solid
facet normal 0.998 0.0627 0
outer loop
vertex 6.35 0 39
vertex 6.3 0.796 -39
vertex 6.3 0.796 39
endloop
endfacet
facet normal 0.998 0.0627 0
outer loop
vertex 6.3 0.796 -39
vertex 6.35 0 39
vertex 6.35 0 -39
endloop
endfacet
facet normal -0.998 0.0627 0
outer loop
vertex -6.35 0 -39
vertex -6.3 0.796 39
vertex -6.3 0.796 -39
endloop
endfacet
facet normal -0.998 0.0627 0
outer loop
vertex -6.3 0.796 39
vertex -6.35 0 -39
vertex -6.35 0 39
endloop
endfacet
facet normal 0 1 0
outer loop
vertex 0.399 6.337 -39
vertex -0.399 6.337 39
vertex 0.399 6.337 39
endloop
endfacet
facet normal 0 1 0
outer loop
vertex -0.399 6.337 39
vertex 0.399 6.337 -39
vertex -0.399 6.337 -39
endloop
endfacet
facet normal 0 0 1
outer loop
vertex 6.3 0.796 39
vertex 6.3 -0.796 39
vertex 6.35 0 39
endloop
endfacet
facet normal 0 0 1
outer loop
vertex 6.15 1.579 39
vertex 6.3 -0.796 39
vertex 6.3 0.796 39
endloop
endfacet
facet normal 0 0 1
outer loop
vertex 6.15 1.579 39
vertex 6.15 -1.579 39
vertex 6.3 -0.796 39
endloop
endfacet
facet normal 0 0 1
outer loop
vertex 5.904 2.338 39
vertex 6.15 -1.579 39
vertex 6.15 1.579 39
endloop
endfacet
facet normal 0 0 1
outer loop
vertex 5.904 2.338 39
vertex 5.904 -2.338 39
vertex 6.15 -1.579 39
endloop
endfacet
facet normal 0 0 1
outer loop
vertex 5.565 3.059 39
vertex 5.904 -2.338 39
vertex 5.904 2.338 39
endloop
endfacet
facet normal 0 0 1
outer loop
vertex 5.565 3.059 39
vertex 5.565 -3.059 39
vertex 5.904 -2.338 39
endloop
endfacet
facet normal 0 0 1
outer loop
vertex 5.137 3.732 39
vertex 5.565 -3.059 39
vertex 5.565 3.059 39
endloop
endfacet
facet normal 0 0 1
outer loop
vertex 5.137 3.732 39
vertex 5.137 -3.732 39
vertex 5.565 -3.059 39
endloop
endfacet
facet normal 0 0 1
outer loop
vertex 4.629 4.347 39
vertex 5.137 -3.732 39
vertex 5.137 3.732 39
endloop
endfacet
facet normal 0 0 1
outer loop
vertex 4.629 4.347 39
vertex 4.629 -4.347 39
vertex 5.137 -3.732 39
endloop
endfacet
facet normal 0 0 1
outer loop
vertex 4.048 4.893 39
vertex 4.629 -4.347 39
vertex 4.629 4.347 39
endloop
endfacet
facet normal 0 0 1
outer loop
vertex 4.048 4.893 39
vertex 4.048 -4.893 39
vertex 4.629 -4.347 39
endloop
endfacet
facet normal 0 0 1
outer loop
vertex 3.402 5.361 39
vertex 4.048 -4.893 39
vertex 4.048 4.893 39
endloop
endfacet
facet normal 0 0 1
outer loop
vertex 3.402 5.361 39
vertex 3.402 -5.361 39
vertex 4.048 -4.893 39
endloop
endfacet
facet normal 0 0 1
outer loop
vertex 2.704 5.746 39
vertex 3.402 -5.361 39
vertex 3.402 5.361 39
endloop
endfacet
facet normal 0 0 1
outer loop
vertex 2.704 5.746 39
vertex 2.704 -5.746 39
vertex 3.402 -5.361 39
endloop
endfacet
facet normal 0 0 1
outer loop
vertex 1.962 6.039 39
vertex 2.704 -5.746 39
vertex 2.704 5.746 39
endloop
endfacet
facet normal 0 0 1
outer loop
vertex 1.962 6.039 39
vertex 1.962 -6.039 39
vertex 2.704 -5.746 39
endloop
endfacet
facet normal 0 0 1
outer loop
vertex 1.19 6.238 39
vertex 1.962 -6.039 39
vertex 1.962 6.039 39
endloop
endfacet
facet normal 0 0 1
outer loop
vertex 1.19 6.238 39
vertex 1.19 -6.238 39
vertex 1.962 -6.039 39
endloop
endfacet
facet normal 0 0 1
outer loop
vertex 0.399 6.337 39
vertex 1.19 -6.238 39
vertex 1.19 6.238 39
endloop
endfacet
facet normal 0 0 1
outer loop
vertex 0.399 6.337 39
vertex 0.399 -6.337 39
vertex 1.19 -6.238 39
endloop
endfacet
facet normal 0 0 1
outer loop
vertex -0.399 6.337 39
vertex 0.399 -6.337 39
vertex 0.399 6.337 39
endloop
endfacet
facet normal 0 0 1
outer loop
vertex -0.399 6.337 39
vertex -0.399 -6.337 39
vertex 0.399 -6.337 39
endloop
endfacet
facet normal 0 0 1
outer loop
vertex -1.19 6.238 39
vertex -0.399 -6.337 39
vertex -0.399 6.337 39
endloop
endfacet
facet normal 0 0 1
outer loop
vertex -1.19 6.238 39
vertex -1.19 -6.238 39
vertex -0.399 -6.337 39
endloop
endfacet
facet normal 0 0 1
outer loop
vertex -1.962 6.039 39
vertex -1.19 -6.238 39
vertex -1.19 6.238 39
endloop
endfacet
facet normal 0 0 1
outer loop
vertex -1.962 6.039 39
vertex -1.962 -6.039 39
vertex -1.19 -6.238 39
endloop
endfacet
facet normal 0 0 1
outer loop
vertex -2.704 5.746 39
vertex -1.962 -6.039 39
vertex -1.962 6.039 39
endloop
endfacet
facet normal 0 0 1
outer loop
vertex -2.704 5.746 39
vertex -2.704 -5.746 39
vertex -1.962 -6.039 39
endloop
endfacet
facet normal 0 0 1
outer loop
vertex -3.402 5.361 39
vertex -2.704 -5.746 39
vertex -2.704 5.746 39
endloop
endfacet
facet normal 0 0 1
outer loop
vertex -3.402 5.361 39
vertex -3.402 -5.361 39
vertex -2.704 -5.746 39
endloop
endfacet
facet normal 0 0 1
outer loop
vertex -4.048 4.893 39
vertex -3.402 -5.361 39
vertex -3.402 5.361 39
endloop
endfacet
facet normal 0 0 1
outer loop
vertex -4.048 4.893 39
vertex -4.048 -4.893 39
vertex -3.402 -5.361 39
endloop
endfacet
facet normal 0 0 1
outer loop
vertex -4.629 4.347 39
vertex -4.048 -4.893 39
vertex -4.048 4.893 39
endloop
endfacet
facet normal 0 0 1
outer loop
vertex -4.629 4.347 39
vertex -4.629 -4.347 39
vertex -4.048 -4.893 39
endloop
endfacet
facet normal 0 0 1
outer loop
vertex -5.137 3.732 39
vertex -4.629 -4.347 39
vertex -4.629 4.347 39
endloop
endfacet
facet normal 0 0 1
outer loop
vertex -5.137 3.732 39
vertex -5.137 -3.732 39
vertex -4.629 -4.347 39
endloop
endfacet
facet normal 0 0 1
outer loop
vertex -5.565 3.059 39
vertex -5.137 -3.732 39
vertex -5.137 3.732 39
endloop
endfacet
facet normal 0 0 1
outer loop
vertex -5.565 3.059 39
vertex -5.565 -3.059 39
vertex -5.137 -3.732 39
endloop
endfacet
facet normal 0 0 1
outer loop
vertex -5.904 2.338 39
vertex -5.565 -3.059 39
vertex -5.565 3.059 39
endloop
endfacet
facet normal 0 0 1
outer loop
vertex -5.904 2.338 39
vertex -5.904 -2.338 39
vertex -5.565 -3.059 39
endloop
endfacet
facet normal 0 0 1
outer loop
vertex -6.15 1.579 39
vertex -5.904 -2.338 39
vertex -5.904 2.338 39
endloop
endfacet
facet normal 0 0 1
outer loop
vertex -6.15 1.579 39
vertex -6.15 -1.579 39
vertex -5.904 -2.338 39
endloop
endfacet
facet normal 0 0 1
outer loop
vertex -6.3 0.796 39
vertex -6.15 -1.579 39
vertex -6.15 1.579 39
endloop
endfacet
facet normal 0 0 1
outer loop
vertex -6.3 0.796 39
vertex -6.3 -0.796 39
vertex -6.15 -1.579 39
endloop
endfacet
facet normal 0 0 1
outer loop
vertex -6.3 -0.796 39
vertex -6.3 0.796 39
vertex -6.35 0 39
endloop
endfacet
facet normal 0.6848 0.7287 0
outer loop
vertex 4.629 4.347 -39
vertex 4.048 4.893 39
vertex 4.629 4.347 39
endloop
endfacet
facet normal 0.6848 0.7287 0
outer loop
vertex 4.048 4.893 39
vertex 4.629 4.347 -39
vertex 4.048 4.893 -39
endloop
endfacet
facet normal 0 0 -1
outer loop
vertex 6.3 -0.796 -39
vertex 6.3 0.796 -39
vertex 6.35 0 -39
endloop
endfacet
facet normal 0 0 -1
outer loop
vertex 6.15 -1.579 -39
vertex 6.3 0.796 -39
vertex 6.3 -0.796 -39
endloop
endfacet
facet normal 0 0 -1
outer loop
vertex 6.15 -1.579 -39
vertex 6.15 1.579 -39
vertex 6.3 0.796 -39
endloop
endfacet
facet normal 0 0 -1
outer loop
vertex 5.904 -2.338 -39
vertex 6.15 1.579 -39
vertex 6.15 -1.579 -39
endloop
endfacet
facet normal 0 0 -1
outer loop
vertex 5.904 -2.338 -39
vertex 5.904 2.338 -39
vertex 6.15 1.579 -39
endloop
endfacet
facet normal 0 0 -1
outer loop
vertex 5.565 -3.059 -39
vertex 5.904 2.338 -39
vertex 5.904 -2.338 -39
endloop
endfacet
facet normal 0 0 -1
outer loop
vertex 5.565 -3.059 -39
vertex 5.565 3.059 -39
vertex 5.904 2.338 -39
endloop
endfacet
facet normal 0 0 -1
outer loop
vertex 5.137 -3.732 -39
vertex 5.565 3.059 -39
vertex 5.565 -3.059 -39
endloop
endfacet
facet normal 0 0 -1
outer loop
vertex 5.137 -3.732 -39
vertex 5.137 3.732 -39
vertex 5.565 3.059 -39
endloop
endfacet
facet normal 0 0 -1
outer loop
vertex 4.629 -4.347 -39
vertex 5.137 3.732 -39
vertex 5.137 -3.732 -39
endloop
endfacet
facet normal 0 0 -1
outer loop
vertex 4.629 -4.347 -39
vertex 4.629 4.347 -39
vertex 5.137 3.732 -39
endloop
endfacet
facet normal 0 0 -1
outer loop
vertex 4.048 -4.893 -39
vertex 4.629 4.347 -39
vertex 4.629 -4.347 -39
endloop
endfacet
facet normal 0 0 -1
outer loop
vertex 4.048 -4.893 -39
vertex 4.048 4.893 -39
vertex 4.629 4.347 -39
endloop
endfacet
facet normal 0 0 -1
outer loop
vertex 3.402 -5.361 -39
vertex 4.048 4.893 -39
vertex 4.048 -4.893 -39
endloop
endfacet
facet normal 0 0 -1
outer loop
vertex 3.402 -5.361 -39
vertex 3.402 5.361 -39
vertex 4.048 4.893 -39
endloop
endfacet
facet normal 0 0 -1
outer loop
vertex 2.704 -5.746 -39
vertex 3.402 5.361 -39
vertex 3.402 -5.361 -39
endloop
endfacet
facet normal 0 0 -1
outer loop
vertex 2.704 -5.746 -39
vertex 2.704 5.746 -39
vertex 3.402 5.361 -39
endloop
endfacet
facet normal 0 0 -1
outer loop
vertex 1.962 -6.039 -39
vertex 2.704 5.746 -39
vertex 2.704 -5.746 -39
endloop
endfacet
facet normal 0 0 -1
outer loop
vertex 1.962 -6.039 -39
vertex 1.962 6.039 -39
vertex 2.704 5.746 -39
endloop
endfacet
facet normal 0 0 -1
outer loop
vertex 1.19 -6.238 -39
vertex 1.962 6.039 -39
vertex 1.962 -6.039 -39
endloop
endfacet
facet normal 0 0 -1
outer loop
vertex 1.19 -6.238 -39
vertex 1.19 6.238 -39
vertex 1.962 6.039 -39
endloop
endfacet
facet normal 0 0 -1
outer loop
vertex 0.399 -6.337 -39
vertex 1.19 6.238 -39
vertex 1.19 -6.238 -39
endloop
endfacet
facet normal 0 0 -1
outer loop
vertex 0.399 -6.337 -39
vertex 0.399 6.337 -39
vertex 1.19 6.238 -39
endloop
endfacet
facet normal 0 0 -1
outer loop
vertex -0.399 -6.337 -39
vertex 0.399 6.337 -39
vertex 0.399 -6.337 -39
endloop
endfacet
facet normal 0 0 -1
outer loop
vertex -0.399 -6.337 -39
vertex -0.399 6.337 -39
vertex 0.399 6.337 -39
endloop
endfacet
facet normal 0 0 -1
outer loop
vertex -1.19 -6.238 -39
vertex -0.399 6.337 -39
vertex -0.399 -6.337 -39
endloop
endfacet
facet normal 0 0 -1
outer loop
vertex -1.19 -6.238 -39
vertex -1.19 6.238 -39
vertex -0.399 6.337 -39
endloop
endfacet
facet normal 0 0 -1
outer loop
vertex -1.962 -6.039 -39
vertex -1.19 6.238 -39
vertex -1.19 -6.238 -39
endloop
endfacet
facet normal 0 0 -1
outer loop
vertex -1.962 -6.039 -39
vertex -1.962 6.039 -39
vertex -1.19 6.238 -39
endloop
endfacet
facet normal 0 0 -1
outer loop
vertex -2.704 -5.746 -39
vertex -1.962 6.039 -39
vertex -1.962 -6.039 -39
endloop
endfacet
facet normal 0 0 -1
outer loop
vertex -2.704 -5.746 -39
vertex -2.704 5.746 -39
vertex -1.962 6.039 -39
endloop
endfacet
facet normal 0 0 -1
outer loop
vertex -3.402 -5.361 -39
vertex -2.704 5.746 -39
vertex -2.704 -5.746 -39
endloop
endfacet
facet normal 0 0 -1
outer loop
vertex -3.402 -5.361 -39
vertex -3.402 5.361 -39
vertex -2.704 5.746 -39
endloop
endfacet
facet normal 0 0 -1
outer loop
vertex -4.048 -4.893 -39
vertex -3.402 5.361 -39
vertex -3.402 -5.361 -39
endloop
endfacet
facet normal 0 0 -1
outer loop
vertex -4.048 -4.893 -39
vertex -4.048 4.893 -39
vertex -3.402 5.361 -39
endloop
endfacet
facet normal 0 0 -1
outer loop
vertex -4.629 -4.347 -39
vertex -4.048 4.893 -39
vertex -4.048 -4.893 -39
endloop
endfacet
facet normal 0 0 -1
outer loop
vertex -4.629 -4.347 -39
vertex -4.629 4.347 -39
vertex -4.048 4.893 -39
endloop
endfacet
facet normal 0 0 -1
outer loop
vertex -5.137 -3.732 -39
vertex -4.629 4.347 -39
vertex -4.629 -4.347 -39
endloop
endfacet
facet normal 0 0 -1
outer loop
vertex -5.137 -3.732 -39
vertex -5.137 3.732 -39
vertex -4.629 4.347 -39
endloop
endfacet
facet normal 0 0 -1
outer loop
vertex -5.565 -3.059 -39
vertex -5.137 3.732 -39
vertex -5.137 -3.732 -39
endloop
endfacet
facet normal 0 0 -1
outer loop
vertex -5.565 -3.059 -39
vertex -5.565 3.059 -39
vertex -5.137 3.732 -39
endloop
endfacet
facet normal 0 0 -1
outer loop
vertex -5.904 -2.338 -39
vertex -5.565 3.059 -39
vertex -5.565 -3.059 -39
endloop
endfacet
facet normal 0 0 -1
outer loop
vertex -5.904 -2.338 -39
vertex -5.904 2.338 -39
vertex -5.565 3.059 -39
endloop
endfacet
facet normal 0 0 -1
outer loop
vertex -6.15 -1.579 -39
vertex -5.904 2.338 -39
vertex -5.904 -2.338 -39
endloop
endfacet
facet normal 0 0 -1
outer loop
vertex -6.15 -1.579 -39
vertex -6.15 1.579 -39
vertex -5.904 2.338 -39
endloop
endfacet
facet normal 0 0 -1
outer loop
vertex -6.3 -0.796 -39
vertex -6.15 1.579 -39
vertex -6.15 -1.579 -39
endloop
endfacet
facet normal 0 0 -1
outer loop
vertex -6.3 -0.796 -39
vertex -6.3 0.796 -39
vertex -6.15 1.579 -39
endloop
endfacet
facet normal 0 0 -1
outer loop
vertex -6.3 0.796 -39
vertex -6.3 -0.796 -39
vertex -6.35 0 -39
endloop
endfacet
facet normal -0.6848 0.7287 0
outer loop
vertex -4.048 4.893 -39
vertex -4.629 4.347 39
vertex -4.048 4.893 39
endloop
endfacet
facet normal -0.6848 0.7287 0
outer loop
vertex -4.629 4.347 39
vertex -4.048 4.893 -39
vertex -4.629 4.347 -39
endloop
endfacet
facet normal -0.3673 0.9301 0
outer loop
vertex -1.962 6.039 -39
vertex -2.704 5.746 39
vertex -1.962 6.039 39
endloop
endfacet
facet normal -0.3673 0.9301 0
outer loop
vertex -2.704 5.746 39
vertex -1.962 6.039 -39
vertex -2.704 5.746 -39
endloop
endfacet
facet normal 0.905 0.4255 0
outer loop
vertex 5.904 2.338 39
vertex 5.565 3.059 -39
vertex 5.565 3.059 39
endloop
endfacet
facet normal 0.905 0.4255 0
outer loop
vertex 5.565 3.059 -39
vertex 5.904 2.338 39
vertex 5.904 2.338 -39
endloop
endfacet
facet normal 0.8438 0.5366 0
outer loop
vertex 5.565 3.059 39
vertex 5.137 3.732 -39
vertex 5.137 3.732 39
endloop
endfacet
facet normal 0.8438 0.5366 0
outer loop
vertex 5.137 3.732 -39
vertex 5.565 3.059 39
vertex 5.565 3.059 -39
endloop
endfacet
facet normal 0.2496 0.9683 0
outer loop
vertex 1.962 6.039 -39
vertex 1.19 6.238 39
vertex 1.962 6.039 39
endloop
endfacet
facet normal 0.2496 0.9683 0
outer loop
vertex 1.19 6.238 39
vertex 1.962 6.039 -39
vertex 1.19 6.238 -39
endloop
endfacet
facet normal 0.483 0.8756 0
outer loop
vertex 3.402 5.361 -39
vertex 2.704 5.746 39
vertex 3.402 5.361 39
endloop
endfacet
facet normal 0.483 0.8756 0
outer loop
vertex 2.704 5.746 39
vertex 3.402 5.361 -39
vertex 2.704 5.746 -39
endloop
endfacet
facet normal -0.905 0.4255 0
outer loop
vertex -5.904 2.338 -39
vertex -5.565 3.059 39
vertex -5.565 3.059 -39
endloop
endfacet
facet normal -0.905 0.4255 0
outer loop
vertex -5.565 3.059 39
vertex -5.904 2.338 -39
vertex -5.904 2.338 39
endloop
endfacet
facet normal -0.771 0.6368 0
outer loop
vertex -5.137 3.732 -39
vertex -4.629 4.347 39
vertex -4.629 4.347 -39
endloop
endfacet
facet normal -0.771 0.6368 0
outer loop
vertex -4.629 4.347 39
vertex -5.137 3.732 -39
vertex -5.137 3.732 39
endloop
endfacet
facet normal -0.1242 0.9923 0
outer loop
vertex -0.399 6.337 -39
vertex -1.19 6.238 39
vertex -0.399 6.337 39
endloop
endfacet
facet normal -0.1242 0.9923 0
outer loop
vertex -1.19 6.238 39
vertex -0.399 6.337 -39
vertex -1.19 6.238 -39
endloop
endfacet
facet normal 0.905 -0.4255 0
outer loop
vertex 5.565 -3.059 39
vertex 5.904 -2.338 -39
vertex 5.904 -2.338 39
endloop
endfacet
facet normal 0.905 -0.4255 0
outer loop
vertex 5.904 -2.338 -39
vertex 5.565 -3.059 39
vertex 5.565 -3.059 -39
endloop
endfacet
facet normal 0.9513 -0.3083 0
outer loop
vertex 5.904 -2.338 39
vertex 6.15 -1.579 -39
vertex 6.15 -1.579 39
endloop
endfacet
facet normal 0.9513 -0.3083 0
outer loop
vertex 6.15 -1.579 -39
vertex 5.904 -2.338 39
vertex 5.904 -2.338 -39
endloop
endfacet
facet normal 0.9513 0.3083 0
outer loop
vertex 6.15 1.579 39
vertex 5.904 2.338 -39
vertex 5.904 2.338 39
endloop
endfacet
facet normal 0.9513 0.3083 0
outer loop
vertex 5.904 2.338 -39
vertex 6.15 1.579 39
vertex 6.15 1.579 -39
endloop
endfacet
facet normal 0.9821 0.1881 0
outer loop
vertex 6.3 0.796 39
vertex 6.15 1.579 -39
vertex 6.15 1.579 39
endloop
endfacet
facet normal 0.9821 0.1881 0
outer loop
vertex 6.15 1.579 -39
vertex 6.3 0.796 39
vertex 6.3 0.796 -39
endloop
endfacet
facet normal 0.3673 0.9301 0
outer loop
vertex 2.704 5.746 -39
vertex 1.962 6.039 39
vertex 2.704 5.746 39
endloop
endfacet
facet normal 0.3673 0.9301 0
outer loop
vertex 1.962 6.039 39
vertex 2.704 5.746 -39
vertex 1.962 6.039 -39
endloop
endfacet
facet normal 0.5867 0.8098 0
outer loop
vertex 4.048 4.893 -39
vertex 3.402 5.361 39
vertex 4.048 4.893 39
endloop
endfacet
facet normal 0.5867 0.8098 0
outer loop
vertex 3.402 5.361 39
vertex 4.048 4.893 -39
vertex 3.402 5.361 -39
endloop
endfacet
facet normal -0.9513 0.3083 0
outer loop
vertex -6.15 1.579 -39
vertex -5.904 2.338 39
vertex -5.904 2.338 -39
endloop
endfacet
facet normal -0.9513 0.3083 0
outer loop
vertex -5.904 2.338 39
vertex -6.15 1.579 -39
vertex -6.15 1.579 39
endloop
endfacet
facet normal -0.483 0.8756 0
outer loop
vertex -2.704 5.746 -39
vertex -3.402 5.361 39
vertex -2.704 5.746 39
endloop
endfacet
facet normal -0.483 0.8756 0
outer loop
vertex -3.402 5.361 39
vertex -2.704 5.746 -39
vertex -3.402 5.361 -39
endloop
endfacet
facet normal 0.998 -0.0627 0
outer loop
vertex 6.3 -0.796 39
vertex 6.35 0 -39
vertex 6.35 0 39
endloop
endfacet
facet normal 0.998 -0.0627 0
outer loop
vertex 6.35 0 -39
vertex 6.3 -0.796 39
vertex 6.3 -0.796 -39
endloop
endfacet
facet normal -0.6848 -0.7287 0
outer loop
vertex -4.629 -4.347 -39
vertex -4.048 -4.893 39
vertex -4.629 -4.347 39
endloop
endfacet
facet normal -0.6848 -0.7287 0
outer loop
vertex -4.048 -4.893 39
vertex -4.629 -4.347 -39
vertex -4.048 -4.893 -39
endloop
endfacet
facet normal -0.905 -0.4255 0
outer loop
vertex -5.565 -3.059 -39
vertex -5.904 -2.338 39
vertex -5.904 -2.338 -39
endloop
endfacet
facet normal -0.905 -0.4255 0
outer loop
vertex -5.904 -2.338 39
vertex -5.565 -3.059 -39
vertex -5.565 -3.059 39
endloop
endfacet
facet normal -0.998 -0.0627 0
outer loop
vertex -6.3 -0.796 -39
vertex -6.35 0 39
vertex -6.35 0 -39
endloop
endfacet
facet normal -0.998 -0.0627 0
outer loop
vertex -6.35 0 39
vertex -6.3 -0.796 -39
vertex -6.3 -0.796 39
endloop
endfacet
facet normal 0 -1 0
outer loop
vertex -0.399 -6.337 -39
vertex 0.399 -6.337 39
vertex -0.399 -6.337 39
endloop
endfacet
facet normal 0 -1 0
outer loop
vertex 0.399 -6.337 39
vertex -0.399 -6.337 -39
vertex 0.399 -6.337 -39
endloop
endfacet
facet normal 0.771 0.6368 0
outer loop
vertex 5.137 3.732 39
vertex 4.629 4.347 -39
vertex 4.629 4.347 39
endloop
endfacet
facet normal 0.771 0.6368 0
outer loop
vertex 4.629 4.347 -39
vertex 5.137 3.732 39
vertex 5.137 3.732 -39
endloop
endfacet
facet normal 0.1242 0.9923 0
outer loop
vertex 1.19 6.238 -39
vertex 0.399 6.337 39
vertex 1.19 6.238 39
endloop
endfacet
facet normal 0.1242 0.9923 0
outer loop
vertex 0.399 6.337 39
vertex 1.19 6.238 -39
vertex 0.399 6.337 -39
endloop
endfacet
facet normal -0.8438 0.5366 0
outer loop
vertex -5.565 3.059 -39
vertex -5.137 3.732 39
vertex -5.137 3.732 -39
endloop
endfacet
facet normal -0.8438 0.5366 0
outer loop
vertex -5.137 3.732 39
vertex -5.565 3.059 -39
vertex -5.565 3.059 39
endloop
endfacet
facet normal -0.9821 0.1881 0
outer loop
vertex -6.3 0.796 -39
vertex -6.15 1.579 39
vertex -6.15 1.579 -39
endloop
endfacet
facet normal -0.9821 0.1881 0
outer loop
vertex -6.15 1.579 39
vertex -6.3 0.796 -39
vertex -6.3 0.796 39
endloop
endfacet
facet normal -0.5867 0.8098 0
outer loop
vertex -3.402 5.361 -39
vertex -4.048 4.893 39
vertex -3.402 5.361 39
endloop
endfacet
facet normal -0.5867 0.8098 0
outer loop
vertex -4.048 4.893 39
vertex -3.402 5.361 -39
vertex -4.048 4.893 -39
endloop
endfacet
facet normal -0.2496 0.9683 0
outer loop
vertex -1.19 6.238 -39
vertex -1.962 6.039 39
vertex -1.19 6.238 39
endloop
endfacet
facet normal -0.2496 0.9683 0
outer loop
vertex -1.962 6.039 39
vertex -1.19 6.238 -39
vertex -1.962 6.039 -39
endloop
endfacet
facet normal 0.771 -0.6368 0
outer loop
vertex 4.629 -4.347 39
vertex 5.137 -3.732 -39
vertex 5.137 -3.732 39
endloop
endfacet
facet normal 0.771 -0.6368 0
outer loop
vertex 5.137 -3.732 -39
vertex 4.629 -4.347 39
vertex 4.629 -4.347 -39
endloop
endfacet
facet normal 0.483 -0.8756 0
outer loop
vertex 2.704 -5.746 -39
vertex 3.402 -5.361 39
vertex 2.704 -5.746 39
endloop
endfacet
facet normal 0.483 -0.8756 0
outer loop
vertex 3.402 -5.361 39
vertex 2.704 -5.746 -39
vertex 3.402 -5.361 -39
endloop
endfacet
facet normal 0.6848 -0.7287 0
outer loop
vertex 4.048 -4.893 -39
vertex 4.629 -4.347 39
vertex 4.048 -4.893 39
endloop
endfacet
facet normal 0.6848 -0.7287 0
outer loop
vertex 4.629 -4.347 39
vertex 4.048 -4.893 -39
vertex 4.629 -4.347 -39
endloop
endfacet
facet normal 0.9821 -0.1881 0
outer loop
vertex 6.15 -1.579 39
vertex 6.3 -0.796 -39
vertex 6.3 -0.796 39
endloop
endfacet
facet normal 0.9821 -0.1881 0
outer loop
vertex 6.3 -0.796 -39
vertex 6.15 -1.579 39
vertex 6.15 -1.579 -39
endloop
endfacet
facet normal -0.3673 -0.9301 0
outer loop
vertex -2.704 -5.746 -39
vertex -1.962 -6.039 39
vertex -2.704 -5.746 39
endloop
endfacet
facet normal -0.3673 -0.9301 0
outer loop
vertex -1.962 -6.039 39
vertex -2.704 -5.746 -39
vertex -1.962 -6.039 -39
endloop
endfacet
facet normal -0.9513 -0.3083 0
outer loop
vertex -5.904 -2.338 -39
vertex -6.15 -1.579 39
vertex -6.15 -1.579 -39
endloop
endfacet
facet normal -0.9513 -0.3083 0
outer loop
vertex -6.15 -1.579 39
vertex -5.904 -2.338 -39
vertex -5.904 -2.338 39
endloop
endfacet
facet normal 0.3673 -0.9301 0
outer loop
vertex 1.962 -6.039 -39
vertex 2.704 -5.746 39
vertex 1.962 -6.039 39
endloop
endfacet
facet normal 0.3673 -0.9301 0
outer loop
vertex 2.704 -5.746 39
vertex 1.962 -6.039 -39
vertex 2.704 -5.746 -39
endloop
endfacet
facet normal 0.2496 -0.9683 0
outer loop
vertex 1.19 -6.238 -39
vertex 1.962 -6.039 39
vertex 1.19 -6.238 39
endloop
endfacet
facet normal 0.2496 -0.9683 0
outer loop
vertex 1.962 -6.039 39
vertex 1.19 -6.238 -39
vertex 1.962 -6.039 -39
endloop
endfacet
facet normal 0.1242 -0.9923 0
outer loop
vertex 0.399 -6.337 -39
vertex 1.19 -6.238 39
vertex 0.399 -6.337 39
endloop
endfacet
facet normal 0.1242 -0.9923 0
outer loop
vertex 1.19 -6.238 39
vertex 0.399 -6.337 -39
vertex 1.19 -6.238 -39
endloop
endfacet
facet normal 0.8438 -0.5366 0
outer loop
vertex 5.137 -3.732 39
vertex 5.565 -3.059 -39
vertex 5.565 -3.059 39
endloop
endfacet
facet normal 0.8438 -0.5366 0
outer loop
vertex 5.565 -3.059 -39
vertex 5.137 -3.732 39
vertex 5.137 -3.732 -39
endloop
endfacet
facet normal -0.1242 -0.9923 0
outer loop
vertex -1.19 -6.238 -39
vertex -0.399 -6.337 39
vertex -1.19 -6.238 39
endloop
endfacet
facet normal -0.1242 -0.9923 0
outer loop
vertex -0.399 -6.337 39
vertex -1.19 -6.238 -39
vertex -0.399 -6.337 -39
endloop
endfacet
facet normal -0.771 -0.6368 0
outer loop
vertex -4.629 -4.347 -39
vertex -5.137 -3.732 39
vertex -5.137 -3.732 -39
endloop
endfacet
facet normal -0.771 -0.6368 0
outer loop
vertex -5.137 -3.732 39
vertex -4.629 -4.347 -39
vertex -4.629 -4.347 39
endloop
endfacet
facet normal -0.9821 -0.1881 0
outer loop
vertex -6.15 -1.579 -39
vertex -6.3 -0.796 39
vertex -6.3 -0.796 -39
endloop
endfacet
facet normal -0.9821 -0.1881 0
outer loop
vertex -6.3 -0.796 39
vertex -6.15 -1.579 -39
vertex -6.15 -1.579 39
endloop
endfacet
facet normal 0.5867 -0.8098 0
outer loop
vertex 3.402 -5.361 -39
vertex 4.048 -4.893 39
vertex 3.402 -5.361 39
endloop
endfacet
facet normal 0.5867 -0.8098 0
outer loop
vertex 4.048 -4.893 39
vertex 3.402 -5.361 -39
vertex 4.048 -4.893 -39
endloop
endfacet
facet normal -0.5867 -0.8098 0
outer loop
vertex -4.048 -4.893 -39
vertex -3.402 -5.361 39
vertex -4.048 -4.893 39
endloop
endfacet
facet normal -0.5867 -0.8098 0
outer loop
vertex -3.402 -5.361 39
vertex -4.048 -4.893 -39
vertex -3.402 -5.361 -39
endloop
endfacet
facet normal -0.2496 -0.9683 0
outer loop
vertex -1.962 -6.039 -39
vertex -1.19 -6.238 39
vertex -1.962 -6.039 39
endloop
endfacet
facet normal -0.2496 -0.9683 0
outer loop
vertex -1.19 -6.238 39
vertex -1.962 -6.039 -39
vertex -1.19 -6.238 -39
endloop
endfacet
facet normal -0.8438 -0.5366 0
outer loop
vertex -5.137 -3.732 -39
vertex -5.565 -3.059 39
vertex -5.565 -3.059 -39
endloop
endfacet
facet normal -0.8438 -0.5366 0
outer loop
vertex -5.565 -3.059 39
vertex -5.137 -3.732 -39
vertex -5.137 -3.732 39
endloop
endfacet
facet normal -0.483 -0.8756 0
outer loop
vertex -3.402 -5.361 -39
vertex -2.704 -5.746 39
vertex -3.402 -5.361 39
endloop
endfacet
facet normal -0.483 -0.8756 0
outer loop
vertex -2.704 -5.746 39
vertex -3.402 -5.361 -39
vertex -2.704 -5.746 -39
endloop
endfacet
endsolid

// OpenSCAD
$fn = 50;


difference() {
	union() {
		translate(v = [0, 0, -39.0000000000]) {
			cylinder(h = 78, r = 6.3500000000);
		}
	}
	union() {
		translate(v = [0, 0, -100.0000000000]) {
			cylinder(h = 200, r = 0);
		}
	}
}
